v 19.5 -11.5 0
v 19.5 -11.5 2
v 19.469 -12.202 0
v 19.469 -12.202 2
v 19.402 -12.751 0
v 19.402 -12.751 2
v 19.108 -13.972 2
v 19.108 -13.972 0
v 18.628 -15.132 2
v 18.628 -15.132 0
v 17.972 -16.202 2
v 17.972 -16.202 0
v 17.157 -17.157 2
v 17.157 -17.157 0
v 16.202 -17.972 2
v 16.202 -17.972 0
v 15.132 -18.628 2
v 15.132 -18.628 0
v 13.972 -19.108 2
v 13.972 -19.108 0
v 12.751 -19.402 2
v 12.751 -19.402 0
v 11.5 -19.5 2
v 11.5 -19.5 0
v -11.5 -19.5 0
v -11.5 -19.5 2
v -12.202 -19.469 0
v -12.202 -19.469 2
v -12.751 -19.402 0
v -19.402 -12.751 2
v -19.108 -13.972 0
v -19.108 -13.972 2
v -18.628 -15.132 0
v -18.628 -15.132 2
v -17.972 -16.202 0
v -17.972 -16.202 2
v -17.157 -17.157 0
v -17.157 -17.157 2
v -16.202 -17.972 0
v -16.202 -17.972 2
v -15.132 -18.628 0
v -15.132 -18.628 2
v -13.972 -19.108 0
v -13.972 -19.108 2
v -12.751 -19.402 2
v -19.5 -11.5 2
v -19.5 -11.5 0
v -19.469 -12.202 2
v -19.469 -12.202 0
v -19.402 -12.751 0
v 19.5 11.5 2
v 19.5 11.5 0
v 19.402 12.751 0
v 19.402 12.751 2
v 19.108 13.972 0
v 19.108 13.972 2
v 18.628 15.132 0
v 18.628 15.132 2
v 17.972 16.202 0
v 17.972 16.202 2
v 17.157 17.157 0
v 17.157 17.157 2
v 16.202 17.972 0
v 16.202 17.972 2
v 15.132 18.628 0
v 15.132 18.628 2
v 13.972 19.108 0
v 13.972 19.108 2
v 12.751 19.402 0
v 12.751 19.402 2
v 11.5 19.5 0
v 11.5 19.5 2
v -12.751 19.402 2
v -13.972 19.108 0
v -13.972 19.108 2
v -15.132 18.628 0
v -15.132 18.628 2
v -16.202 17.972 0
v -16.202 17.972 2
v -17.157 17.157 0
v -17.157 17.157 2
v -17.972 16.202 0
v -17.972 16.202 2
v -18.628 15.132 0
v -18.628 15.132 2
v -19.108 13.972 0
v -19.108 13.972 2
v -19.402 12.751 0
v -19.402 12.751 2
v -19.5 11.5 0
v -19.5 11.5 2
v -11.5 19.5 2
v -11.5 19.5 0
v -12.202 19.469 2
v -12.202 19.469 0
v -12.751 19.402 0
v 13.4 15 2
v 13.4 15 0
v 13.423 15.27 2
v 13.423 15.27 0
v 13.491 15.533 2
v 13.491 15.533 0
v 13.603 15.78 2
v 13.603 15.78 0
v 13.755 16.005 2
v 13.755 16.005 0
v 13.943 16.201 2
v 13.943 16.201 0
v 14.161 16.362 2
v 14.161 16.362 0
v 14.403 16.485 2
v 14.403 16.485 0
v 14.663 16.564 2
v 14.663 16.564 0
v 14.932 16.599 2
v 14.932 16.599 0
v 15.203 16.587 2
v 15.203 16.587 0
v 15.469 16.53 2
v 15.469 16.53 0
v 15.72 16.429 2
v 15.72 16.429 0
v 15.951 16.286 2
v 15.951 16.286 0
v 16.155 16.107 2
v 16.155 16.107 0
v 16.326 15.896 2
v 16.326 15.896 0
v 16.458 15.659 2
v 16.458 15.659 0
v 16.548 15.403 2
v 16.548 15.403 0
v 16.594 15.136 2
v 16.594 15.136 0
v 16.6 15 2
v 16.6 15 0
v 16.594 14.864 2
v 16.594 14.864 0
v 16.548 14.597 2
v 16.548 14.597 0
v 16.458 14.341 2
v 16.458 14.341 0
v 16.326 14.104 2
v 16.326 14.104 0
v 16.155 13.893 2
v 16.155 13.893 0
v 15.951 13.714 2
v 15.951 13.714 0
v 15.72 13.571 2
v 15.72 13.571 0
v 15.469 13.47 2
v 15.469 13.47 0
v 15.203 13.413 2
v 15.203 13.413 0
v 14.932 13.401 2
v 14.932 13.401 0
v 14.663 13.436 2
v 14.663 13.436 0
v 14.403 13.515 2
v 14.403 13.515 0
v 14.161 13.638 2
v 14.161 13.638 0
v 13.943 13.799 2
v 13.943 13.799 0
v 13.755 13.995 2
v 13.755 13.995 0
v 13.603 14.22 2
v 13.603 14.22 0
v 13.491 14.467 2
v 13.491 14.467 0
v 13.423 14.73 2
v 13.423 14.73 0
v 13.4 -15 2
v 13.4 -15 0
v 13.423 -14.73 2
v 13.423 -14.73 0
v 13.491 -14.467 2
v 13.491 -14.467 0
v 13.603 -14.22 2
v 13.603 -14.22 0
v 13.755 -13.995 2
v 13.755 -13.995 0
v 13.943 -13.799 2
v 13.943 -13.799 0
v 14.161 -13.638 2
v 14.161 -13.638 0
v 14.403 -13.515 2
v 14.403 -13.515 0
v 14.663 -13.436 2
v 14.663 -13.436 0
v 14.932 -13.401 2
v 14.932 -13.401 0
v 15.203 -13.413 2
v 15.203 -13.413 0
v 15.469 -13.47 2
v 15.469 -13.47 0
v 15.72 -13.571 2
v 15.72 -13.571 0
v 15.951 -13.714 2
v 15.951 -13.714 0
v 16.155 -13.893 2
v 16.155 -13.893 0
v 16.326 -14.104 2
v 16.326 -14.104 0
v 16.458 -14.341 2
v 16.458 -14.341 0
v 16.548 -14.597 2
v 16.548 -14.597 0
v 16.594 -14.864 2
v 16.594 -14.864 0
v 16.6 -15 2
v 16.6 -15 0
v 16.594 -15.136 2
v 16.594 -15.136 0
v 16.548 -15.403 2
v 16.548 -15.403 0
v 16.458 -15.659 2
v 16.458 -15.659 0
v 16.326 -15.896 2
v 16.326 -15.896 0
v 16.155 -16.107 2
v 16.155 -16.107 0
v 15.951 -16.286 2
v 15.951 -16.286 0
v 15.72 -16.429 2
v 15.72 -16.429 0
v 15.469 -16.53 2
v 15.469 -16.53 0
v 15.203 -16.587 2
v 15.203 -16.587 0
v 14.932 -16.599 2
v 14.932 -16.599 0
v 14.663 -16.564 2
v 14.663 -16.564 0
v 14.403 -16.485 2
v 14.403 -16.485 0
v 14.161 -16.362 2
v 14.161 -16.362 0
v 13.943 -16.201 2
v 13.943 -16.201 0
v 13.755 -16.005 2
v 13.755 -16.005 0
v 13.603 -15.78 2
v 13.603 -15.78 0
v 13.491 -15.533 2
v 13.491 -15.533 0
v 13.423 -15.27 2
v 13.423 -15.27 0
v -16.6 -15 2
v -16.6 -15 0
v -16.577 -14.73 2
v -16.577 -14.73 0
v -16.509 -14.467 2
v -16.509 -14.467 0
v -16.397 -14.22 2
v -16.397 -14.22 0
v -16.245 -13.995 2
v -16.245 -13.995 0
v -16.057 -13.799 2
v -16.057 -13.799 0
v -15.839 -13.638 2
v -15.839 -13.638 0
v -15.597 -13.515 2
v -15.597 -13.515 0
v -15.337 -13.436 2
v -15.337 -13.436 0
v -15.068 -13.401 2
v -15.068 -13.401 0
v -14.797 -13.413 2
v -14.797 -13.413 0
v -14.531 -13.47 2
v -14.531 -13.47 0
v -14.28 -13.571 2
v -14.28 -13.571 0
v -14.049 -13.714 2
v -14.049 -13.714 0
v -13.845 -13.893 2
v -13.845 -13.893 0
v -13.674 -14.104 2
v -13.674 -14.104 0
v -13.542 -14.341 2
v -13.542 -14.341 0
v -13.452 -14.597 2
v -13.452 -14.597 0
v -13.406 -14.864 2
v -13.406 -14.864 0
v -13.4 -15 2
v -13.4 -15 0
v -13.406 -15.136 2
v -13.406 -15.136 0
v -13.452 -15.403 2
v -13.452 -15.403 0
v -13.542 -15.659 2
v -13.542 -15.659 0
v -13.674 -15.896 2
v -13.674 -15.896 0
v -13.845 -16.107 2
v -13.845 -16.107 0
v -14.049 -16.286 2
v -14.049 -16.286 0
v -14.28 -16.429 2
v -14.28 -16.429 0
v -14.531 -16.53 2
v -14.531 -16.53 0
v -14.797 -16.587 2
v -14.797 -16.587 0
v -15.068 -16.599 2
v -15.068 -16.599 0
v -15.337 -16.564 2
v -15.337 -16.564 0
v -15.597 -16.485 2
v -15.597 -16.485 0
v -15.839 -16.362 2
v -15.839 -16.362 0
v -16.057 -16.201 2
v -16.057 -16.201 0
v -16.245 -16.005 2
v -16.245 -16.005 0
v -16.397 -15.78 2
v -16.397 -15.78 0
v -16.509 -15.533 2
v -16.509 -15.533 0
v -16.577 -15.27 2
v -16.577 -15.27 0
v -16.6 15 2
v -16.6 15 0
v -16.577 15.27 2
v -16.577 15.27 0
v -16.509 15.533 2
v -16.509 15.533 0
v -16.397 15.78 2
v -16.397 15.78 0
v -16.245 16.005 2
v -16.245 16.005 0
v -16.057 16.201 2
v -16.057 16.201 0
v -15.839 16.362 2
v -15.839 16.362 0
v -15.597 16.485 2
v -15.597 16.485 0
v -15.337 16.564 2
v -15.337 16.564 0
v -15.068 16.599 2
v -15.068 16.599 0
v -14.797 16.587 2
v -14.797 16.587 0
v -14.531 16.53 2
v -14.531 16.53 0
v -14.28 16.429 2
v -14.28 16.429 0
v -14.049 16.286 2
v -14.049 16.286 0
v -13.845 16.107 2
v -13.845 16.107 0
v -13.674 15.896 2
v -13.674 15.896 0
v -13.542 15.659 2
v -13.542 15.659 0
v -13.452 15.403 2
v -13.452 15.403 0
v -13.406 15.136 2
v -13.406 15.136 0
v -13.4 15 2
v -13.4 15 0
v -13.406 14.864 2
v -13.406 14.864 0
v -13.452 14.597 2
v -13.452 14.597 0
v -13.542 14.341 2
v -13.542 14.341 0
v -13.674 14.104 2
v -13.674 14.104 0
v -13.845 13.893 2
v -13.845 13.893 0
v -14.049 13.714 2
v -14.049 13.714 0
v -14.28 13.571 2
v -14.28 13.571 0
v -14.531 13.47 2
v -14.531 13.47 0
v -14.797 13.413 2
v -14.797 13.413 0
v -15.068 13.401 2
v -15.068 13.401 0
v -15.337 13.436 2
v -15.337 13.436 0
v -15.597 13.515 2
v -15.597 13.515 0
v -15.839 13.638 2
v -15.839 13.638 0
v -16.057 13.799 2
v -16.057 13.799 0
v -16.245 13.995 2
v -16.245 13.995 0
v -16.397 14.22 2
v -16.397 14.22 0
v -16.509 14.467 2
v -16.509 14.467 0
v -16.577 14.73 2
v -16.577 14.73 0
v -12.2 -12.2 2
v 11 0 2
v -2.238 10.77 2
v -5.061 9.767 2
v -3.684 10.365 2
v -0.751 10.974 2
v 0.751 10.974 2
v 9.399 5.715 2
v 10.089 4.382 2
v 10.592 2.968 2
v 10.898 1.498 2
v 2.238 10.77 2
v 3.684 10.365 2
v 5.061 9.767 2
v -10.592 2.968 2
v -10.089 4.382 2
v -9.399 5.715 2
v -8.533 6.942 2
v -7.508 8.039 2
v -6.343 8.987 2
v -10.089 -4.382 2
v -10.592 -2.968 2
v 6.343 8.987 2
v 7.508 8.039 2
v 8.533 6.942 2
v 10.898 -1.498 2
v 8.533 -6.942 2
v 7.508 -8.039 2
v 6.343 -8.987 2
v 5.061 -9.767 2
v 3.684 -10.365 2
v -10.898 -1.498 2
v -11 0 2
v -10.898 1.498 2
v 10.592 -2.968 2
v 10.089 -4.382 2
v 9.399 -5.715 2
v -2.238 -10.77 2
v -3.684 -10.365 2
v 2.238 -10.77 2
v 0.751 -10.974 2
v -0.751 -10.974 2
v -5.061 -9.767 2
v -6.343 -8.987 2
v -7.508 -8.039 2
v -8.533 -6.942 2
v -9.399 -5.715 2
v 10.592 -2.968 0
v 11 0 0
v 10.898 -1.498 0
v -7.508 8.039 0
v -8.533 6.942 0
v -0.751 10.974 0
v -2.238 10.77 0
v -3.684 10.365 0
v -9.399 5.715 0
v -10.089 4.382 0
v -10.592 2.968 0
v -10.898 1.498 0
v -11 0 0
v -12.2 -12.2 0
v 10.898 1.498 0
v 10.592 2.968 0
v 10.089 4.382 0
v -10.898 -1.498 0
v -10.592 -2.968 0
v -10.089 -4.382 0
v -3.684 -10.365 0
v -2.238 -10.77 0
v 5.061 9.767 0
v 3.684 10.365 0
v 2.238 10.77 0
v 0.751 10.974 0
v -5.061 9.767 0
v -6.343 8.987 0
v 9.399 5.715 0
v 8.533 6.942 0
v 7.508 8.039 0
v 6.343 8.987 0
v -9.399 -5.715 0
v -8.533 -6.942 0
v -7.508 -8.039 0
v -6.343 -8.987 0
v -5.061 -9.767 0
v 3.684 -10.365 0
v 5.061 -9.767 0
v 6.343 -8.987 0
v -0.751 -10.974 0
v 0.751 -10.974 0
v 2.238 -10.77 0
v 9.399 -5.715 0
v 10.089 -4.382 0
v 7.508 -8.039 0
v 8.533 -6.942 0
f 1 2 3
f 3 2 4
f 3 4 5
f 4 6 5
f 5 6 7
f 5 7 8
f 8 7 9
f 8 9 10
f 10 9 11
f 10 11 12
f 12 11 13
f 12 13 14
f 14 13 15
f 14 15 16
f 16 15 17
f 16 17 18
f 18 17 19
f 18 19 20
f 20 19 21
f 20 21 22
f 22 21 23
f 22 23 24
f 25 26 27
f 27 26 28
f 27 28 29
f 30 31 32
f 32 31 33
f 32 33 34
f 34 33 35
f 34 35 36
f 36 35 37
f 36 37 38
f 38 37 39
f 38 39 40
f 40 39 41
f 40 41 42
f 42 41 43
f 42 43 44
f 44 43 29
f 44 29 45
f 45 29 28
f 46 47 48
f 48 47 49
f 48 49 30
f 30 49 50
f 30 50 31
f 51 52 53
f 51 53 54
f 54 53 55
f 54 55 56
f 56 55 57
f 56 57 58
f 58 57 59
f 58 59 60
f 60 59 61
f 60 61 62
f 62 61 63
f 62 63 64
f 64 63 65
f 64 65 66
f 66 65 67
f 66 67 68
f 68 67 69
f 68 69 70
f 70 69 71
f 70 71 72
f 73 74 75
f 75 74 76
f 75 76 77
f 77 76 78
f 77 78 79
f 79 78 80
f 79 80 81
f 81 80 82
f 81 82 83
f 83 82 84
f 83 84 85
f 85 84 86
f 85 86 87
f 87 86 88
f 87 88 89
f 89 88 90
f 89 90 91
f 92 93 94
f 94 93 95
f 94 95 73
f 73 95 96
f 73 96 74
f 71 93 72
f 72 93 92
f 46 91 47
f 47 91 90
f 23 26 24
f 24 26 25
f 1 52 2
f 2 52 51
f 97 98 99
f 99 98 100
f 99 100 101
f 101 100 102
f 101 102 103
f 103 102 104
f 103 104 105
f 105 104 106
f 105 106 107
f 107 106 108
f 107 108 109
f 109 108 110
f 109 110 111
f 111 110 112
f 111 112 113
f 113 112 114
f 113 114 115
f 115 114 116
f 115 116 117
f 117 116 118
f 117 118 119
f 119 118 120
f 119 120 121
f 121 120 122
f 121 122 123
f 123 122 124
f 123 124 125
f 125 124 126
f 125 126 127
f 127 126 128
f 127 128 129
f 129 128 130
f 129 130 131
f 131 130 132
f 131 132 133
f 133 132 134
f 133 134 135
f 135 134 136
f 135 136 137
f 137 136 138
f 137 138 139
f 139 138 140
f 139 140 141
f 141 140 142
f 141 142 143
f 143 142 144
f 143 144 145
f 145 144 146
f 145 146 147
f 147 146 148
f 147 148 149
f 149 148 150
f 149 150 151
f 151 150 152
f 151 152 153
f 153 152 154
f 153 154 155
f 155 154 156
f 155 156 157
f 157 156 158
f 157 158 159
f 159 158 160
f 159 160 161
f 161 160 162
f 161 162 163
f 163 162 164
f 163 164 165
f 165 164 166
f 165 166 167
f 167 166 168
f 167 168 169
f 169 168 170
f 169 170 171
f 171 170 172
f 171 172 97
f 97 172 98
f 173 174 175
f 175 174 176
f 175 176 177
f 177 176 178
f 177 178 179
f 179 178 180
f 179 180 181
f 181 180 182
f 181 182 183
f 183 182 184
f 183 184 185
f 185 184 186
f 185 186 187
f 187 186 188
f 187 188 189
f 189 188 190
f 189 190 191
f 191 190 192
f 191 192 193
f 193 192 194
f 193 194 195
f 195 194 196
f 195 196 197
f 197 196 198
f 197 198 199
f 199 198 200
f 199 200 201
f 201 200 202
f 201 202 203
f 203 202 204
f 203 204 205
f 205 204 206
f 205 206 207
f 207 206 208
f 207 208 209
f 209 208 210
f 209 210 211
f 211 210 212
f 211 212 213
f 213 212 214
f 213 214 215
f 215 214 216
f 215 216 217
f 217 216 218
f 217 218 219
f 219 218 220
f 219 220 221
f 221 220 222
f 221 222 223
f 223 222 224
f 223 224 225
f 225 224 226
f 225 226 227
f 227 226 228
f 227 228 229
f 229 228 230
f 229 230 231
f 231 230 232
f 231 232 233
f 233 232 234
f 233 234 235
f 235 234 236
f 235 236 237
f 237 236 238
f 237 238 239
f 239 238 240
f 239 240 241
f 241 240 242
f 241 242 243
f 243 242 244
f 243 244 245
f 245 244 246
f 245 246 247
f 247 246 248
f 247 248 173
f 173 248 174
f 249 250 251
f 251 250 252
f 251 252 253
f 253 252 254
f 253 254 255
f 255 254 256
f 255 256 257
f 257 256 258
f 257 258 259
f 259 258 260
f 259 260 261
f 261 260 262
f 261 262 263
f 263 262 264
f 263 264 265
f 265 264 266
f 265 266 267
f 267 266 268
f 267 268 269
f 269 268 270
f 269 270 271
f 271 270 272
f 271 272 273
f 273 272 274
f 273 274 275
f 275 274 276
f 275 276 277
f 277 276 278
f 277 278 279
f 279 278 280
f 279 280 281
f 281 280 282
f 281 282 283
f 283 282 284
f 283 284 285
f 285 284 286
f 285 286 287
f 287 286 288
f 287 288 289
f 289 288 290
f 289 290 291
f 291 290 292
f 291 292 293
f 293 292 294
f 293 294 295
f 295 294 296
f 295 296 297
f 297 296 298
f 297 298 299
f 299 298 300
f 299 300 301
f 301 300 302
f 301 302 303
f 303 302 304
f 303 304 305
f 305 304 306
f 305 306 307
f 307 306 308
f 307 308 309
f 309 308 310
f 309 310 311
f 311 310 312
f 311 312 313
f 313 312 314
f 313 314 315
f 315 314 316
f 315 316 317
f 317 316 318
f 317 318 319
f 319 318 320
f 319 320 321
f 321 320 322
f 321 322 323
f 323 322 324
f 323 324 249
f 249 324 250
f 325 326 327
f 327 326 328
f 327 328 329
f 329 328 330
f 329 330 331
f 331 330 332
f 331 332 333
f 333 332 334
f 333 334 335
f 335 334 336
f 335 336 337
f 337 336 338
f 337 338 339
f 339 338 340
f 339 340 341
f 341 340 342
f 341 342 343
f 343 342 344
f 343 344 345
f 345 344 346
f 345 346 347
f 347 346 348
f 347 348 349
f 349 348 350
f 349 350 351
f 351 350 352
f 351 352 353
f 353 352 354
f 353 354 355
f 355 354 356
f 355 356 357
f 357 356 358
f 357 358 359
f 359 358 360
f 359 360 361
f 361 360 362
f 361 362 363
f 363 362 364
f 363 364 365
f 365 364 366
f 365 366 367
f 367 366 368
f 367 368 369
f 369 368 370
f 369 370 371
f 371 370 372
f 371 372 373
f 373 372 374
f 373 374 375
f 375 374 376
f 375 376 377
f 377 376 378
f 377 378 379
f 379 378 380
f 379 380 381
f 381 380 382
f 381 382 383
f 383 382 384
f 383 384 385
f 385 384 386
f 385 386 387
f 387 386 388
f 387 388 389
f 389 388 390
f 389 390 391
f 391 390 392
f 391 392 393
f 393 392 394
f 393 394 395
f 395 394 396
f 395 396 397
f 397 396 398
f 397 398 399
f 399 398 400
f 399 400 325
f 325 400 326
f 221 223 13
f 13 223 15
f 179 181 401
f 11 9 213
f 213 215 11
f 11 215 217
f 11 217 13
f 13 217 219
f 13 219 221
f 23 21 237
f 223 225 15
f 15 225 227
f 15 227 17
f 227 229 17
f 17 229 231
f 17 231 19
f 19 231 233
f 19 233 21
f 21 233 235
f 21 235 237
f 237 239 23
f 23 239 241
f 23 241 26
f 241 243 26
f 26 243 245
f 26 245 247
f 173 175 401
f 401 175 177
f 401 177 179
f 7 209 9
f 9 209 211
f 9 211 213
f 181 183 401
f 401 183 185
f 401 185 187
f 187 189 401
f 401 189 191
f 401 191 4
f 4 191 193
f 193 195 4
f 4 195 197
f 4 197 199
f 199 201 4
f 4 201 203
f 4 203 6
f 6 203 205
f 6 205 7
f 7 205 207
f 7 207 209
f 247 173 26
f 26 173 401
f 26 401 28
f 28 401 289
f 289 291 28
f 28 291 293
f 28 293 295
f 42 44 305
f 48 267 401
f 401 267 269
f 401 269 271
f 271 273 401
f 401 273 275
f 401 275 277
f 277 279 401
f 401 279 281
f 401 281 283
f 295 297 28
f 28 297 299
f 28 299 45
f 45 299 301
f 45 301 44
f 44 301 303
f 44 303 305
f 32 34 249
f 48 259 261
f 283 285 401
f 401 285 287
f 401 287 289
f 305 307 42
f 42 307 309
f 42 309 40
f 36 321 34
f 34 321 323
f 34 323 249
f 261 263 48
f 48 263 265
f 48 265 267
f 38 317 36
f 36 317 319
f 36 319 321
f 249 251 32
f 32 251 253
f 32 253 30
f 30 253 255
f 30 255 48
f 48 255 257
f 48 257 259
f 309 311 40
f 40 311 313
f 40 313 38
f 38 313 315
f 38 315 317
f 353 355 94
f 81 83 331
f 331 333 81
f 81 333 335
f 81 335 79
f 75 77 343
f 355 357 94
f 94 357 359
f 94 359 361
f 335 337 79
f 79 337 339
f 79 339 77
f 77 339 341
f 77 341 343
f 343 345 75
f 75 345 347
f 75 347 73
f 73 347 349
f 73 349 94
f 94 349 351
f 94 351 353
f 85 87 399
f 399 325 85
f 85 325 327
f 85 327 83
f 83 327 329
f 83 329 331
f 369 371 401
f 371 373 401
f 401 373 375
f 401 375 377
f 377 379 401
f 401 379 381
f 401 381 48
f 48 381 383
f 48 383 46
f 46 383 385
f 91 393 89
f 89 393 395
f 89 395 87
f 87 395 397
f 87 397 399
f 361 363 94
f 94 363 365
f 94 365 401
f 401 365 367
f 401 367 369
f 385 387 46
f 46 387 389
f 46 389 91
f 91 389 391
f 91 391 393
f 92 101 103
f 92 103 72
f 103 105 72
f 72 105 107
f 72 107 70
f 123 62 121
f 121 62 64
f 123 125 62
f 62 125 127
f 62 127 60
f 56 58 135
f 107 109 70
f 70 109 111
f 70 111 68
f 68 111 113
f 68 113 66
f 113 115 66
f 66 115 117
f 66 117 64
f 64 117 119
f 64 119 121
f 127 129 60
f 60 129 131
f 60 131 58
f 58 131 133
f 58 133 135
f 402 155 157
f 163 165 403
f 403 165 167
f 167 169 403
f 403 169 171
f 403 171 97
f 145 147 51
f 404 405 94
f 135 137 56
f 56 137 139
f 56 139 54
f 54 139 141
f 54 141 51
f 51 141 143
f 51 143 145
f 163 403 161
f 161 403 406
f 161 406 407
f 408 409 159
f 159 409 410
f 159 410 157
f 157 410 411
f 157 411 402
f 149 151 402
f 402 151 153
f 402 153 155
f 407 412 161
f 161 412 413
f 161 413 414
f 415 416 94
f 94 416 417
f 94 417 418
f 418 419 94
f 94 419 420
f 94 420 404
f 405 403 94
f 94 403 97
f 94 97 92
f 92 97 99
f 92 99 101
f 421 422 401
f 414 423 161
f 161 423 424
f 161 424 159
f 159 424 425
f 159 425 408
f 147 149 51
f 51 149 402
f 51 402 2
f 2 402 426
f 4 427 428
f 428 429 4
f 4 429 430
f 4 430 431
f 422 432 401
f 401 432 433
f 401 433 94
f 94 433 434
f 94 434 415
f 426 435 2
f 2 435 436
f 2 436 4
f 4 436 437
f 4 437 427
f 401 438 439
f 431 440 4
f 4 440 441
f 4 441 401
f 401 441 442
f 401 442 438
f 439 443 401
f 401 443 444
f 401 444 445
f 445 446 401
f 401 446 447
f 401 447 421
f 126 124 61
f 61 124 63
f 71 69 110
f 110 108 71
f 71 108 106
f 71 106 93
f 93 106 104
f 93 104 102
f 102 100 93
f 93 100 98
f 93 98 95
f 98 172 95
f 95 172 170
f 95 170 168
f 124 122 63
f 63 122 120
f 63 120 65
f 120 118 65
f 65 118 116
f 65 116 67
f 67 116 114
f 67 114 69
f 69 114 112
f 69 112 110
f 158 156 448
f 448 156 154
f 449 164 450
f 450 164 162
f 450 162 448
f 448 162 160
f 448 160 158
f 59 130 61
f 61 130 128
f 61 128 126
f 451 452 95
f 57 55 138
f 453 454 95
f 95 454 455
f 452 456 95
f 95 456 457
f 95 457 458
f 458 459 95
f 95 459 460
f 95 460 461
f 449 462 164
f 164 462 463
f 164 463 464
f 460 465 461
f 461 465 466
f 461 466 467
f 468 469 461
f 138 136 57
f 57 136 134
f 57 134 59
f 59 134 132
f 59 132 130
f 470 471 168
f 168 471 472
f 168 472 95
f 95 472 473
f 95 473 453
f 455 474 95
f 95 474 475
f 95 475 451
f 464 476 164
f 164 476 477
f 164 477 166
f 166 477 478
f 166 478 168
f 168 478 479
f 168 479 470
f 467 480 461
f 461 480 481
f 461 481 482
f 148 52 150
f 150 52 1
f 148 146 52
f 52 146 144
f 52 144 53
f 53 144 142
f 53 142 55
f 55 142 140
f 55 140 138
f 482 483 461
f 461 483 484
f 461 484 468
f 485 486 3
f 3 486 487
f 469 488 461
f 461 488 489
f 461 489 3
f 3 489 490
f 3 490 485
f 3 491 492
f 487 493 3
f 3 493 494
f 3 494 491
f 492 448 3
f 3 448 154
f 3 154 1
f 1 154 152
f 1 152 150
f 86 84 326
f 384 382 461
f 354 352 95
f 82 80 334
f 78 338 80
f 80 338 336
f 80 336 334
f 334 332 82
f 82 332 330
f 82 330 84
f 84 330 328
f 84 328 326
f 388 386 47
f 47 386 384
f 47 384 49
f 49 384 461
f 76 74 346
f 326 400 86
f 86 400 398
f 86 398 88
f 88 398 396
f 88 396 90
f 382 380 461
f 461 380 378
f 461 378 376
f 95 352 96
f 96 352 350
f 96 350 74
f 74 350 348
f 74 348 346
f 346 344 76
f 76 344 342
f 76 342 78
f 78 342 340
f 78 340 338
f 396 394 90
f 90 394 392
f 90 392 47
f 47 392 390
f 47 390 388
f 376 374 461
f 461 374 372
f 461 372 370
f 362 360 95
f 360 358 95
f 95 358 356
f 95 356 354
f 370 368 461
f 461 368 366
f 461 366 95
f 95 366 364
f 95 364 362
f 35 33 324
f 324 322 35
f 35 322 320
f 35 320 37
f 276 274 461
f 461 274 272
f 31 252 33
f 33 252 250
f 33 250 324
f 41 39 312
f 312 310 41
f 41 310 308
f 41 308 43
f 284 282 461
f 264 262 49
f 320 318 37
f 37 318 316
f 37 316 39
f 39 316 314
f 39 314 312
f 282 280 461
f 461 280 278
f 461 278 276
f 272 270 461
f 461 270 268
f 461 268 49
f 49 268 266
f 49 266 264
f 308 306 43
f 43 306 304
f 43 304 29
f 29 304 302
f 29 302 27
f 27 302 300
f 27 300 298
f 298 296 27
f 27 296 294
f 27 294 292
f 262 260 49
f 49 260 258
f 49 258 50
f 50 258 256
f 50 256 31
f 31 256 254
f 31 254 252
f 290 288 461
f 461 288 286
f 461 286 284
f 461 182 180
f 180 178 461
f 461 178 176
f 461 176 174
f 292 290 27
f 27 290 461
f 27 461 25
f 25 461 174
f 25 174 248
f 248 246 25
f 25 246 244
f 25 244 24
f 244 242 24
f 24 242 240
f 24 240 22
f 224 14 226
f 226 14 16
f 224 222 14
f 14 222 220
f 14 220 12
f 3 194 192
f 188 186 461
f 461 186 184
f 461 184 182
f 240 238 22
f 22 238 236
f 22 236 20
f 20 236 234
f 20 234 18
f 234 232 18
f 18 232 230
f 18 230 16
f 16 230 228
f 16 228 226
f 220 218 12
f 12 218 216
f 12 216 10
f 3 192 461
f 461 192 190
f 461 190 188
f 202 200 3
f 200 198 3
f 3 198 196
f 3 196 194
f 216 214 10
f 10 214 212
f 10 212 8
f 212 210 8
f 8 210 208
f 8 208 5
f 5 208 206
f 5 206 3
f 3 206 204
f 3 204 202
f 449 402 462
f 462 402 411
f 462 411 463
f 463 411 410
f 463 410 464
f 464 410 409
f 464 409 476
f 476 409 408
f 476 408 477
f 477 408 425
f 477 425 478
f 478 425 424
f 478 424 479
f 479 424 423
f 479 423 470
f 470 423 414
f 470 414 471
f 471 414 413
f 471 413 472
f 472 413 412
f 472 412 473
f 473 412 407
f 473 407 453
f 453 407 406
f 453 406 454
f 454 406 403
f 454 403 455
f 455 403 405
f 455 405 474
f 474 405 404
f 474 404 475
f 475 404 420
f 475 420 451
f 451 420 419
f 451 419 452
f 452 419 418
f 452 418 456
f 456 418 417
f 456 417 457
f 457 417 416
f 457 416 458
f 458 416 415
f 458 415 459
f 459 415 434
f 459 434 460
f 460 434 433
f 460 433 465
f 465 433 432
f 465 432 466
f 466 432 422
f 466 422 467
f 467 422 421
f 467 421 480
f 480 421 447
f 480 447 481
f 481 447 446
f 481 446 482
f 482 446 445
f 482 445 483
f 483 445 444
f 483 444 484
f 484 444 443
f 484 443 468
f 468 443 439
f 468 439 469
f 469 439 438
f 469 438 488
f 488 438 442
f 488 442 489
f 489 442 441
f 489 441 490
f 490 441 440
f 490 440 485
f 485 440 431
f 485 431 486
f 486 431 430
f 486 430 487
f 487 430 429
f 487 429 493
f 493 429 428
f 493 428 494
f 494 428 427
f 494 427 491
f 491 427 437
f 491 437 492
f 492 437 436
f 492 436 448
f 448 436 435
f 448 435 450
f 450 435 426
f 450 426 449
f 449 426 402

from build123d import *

# Parameters (mm, degrees)
SKETCH_1_R          = 1.6
SKETCH_1_R_2        = 5.5
EXTRUDE_2_DEPTH     = 2
FILLET_6_R          = 8
FILLET_7_R          = 8
FILLET_8_R          = 8
FILLET_9_R          = 8
SKETCH_2_R          = 11
CUT_EXTRUDE_1_DEPTH = 10


with BuildPart() as part:
    # 草图1 → 凸台-拉伸2 (new body)
    # profile 1 of 2: a face of its own
    with BuildSketch(Plane.XY):
        with BuildLine():
            Line((-16.6, 15), (-19.5, 15))
            Line((-19.5, 15), (-19.5, -19.5))
            Line((-19.5, -19.5), (19.5, -19.5))
            Line((19.5, -19.5), (19.5, 19.5))
            Line((19.5, 19.5), (-15, 19.5))
            Line((-15, 19.5), (-15, 16.6))
            ThreePointArc((-15, 16.6), (-13.86862915, 16.13137085), (-13.4, 15))
            ThreePointArc((-13.4, 15), (-15, 13.4), (-16.6, 15))
        make_face()
        with Locations((-15, -15)):
            Circle(SKETCH_1_R, mode=Mode.SUBTRACT)
        with Locations((15, -15)):
            Circle(SKETCH_1_R, mode=Mode.SUBTRACT)
        Circle(SKETCH_1_R_2, mode=Mode.SUBTRACT)
        with Locations((15, 15)):
            Circle(SKETCH_1_R, mode=Mode.SUBTRACT)
    # profile 2 of 2: a face of its own
    with BuildSketch(Plane.XY):
        with BuildLine():
            Line((-19.5, 19.5), (-19.5, 15))
            Line((-19.5, 15), (-16.6, 15))
            ThreePointArc((-16.6, 15), (-16.13137085, 16.13137085), (-15, 16.6))
            Line((-15, 16.6), (-15, 19.5))
            Line((-15, 19.5), (-19.5, 19.5))
        make_face()
    extrude(amount=EXTRUDE_2_DEPTH)

    # 圆角6
    fillet_6_edges = [part.edges().sort_by_distance(p)[0] for p in [
        (-19.5, 19.5, 1),
    ]]
    fillet(fillet_6_edges, radius=FILLET_6_R)

    # 圆角7
    fillet_7_edges = [part.edges().sort_by_distance(p)[0] for p in [
        (19.5, 19.5, 1),
    ]]
    fillet(fillet_7_edges, radius=FILLET_7_R)

    # 圆角8
    fillet_8_edges = [part.edges().sort_by_distance(p)[0] for p in [
        (-19.5, -19.5, 1),
    ]]
    fillet(fillet_8_edges, radius=FILLET_8_R)

    # 圆角9
    fillet_9_edges = [part.edges().sort_by_distance(p)[0] for p in [
        (19.5, -19.5, 1),
    ]]
    fillet(fillet_9_edges, radius=FILLET_9_R)

    # 草图2 → 切除-拉伸1 (cut)
    with BuildSketch(Plane.XY.offset(2)):
        Circle(SKETCH_2_R)
    extrude(amount=-CUT_EXTRUDE_1_DEPTH, mode=Mode.SUBTRACT)


solid = part.part
